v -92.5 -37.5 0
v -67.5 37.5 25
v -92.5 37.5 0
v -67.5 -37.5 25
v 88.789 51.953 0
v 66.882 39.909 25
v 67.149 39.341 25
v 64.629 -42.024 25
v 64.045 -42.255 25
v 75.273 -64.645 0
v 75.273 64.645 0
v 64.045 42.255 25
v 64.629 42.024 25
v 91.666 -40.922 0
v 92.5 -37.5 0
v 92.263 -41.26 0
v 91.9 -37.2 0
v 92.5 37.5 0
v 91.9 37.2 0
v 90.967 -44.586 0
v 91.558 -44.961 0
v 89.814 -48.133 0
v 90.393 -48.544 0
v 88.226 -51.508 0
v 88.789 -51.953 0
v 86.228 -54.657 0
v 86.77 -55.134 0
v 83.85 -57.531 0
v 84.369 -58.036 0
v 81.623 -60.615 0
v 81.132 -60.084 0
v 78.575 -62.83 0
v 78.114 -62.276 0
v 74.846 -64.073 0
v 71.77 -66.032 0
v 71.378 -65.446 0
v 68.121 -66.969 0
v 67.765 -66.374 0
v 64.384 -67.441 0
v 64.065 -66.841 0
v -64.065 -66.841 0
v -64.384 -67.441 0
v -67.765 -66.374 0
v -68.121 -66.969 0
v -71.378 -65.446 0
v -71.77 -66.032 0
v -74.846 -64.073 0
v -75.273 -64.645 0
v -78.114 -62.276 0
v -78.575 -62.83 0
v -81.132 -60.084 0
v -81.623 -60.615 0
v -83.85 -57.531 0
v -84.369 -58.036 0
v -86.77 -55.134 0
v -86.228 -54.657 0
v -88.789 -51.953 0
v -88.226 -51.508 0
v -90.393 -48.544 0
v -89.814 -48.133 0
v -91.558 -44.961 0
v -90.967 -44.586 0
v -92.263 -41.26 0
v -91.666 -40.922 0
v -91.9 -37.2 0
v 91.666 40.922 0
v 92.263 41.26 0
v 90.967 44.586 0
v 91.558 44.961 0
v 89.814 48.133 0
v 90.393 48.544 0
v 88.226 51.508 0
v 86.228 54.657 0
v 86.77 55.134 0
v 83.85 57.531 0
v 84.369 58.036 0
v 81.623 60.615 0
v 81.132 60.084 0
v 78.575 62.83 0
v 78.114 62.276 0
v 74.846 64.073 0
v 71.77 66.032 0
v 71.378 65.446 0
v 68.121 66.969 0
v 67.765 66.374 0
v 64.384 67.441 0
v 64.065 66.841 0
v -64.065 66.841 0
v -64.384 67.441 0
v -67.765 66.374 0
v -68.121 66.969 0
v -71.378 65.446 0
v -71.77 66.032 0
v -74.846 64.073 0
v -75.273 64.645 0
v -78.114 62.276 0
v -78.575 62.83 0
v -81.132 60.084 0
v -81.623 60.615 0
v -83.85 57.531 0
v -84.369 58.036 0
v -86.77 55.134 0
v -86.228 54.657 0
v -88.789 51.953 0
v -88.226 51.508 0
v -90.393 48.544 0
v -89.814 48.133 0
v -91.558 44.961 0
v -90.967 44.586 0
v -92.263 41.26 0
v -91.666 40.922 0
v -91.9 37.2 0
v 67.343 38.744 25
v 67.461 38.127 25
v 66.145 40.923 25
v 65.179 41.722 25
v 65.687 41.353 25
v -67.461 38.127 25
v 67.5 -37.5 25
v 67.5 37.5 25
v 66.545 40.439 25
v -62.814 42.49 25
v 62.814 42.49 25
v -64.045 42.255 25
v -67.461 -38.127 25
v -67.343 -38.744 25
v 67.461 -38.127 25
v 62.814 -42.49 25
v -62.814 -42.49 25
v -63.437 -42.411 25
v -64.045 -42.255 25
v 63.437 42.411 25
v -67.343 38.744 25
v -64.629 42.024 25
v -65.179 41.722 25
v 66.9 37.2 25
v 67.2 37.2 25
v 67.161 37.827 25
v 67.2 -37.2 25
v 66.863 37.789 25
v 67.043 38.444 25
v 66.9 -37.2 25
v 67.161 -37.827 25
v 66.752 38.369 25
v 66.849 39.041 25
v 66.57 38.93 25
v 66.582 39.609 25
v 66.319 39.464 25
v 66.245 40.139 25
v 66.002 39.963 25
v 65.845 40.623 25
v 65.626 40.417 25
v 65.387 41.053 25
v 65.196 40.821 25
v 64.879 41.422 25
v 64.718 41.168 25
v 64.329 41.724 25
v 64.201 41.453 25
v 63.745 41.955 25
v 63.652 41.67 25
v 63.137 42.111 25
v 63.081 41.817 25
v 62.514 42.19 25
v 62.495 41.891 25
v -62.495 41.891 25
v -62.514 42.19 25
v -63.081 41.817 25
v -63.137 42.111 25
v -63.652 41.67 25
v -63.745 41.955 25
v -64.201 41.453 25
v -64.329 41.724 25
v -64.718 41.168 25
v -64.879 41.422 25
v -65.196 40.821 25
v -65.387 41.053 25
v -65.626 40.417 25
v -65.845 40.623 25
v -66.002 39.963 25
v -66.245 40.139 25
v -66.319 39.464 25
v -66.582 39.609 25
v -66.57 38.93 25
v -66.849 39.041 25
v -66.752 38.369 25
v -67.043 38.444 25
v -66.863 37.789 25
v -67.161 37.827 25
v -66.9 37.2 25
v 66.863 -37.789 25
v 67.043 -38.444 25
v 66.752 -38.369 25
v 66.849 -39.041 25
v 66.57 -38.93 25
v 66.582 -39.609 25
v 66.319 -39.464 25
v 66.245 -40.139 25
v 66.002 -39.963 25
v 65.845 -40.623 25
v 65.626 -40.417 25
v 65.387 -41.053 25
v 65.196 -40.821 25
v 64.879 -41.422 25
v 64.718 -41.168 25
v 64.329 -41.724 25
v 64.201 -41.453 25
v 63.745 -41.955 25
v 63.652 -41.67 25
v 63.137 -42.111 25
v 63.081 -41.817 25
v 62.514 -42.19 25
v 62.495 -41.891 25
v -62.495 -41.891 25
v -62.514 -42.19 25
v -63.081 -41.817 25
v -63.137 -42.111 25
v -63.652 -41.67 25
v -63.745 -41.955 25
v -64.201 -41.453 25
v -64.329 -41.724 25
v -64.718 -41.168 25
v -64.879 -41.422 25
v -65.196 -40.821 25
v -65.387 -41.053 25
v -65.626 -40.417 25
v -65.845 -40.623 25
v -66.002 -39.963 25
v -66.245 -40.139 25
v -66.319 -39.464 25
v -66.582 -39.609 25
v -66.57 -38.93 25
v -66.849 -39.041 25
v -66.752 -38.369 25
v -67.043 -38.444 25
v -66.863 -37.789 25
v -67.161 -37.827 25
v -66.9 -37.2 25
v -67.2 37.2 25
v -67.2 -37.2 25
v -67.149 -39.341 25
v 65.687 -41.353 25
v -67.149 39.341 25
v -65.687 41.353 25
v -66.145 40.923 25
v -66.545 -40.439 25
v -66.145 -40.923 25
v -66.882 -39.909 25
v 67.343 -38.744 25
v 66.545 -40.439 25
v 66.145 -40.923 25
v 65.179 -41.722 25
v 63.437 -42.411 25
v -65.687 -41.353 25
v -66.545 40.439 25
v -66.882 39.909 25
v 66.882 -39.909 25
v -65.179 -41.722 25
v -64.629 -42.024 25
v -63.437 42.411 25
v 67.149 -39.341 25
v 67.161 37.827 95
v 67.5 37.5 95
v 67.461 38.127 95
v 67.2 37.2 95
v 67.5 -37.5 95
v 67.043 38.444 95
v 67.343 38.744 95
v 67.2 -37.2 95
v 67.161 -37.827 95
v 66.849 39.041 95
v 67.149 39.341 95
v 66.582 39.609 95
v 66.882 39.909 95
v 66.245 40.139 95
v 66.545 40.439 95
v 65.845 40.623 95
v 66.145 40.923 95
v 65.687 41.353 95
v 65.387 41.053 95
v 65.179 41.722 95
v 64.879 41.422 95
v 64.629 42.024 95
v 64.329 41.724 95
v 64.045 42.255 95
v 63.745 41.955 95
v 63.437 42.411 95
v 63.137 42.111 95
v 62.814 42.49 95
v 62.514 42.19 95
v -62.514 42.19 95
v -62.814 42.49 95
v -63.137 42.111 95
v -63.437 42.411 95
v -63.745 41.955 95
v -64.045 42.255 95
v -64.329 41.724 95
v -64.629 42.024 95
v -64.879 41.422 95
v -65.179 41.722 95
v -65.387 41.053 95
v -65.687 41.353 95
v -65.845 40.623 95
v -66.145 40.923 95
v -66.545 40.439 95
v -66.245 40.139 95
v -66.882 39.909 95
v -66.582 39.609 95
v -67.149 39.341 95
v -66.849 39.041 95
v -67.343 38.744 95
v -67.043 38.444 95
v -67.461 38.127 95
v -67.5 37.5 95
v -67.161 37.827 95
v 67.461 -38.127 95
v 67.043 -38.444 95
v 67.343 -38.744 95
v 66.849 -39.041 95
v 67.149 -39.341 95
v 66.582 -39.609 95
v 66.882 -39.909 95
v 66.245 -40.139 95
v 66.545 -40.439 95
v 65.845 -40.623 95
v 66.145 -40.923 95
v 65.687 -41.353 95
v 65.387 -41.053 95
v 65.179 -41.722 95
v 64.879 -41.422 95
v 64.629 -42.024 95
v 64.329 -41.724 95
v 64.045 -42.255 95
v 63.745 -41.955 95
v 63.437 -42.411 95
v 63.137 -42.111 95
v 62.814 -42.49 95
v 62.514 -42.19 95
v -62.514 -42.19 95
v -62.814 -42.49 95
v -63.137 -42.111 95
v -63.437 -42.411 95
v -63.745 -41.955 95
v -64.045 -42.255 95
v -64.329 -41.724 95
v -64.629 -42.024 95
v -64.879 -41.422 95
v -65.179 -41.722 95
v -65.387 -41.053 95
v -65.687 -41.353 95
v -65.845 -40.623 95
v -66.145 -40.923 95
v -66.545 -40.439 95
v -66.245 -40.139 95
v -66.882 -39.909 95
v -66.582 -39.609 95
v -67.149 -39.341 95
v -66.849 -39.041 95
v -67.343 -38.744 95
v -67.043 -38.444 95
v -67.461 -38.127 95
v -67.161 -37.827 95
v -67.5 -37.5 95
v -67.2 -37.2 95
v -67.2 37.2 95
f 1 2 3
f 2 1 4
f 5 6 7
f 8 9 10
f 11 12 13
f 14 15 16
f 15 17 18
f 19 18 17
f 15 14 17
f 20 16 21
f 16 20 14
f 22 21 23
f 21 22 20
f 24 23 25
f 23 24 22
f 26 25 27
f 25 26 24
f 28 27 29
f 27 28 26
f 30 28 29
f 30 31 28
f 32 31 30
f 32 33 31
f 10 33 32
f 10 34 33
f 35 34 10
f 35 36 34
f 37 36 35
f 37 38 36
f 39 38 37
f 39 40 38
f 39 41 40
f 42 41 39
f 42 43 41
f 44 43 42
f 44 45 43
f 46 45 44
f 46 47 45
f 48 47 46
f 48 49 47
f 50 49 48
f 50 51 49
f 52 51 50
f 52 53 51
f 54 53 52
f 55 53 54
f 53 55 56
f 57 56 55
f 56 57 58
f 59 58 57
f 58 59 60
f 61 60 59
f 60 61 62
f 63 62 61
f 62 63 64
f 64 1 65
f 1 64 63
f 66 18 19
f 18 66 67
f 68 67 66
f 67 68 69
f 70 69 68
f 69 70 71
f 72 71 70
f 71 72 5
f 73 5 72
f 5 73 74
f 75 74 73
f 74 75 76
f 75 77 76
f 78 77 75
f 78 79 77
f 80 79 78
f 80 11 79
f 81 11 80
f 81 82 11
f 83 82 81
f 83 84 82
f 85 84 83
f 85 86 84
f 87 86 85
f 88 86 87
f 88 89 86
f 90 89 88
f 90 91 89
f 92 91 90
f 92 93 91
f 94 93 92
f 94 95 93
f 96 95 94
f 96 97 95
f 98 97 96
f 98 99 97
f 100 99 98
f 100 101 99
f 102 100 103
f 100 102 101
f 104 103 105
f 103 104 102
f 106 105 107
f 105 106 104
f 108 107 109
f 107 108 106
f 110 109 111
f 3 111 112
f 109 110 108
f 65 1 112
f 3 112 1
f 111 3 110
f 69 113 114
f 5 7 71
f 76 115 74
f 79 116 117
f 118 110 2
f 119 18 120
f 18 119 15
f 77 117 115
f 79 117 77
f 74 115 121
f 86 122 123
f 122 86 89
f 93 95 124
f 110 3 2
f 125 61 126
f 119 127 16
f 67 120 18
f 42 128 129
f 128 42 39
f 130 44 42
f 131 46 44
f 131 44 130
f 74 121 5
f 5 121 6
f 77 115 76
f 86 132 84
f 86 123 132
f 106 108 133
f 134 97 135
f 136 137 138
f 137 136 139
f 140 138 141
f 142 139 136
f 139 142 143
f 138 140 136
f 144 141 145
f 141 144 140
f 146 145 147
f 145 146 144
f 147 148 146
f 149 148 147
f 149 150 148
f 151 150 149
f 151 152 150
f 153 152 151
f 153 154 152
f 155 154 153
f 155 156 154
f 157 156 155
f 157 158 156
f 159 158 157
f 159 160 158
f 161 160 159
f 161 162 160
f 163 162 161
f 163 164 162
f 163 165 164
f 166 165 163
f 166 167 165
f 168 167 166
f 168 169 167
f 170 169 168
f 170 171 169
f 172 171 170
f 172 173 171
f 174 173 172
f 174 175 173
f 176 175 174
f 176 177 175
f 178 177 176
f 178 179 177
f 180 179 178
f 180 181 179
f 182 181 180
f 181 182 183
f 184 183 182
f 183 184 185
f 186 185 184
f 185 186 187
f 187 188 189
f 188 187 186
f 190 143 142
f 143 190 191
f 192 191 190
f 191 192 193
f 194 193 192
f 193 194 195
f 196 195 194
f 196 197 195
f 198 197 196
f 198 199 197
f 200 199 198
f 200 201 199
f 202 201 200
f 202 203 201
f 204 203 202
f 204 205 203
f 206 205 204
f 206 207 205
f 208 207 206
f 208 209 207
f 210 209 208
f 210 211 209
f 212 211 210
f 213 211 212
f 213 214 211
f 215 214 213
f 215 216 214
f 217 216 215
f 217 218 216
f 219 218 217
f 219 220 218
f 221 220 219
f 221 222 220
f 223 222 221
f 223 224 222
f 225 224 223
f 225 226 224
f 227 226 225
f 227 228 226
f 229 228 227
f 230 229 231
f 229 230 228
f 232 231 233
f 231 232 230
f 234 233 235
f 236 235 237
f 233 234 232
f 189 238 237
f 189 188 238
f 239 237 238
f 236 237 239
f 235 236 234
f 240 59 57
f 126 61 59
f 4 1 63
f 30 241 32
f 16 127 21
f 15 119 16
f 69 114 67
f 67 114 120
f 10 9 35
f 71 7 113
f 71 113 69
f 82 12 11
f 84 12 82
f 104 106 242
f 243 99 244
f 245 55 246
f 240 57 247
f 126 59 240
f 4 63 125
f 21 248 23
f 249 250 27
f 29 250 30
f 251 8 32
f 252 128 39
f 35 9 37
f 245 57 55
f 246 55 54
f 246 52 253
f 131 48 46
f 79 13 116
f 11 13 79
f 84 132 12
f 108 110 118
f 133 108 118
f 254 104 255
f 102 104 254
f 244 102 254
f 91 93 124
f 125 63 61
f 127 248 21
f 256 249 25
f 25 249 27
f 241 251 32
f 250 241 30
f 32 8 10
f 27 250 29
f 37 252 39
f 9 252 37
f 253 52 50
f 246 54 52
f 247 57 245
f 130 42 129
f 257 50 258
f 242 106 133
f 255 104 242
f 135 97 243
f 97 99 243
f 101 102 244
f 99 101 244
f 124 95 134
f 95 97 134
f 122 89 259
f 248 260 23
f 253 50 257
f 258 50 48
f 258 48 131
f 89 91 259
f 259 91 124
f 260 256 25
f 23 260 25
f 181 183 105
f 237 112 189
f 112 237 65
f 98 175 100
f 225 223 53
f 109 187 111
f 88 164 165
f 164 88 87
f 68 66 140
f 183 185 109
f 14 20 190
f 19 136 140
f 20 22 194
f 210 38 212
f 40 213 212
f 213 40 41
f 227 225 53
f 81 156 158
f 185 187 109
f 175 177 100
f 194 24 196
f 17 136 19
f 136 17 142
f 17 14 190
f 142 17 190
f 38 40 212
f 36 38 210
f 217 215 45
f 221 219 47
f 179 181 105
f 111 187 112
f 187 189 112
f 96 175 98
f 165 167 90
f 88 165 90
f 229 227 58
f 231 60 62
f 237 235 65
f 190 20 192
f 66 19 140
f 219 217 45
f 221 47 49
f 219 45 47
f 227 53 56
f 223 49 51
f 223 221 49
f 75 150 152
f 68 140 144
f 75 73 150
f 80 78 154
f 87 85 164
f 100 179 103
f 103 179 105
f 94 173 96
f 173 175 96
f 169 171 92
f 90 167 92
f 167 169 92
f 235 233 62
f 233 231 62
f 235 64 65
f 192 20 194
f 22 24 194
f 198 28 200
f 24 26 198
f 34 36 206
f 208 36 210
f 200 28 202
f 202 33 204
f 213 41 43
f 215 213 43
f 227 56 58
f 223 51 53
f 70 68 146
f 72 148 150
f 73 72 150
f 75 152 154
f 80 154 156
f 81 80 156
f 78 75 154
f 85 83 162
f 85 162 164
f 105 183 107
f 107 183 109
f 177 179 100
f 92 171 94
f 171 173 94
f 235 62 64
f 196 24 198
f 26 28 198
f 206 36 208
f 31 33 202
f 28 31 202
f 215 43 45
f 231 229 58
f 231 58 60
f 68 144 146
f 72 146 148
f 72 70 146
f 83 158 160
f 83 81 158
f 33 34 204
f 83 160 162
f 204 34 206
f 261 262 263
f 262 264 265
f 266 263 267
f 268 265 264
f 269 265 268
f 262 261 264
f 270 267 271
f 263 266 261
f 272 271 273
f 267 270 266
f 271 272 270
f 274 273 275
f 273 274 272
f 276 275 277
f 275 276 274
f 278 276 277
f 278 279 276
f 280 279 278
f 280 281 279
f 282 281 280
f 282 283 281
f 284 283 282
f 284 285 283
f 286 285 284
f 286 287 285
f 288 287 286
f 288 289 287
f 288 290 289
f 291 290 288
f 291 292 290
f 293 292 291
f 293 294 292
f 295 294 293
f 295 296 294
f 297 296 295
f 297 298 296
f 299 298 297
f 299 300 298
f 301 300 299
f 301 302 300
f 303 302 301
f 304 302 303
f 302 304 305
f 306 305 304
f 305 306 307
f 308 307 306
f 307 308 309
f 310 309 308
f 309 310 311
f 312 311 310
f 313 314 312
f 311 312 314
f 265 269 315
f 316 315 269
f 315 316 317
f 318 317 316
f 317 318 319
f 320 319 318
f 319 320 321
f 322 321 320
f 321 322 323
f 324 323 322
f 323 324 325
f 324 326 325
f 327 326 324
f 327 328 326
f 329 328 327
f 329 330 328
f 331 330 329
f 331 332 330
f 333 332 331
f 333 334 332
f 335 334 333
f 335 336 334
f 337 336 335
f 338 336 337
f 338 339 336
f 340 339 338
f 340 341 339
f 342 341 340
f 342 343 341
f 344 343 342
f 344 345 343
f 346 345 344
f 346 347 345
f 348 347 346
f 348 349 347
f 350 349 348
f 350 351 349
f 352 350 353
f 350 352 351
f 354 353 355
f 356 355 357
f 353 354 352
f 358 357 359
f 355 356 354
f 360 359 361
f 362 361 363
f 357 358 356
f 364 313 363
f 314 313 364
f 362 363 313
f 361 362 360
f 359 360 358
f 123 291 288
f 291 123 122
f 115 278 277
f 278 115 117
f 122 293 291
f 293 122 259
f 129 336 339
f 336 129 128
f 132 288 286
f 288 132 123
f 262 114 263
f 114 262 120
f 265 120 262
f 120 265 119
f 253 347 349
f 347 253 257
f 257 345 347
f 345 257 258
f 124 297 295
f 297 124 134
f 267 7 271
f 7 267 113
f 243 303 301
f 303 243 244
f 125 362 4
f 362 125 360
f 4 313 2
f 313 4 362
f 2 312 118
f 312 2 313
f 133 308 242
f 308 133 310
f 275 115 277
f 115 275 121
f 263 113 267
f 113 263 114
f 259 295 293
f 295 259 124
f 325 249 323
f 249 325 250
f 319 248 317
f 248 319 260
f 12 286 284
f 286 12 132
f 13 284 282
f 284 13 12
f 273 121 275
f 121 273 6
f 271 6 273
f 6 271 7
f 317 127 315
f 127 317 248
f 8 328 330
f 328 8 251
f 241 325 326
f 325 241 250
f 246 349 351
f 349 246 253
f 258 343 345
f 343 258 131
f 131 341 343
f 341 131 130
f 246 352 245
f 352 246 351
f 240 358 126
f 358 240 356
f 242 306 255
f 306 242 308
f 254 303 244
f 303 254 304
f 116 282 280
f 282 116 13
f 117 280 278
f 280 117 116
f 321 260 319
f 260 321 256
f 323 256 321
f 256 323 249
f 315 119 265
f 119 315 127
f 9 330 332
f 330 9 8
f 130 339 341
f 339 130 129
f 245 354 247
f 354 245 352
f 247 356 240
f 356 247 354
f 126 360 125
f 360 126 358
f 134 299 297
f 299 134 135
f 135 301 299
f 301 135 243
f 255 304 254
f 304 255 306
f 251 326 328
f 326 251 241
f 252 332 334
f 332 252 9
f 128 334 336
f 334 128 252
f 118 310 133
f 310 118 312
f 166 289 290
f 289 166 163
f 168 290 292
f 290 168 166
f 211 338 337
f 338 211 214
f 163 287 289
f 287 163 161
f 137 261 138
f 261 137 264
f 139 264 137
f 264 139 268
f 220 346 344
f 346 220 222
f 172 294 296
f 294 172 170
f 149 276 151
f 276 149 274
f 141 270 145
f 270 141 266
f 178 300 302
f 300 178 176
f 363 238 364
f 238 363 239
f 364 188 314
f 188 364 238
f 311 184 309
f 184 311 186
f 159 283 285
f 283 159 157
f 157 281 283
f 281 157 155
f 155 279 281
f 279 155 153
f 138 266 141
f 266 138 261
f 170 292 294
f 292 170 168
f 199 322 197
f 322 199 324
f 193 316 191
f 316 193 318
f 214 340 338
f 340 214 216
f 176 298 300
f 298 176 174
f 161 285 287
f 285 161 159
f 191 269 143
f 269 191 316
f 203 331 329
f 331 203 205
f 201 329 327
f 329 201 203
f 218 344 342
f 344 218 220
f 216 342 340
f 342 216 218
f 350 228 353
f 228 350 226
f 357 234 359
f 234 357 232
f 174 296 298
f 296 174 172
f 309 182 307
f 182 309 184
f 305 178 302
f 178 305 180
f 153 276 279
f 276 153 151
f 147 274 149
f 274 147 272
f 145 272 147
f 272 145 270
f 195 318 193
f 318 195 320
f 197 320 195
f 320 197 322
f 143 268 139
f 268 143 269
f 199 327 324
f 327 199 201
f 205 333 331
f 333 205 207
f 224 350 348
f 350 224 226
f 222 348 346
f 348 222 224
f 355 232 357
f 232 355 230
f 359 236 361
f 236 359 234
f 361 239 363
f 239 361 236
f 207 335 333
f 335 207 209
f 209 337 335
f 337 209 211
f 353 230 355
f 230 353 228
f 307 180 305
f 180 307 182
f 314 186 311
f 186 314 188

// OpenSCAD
$fn = 50;


difference() {
	union() {
		translate(v = [0, 0, 0]) {
			rotate(a = [0, 0, 0]) {
				difference() {
					union() {
						hull() {
							translate(v = [-62.5000000000, 37.5000000000, 0]) {
								cylinder(h = 25, r = 5, r1 = 30.0000000000, r2 = 5);
							}
							translate(v = [62.5000000000, 37.5000000000, 0]) {
								cylinder(h = 25, r = 5, r1 = 30.0000000000, r2 = 5);
							}
							translate(v = [-62.5000000000, -37.5000000000, 0]) {
								cylinder(h = 25, r = 5, r1 = 30.0000000000, r2 = 5);
							}
							translate(v = [62.5000000000, -37.5000000000, 0]) {
								cylinder(h = 25, r = 5, r1 = 30.0000000000, r2 = 5);
							}
						}
					}
					union() {
						hull() {
							translate(v = [-62.2000000000, 37.2000000000, 0]) {
								cylinder(h = 25, r = 5, r1 = 29.7000000000, r2 = 4.7000000000);
							}
							translate(v = [62.2000000000, 37.2000000000, 0]) {
								cylinder(h = 25, r = 5, r1 = 29.7000000000, r2 = 4.7000000000);
							}
							translate(v = [-62.2000000000, -37.2000000000, 0]) {
								cylinder(h = 25, r = 5, r1 = 29.7000000000, r2 = 4.7000000000);
							}
							translate(v = [62.2000000000, -37.2000000000, 0]) {
								cylinder(h = 25, r = 5, r1 = 29.7000000000, r2 = 4.7000000000);
							}
						}
					}
				}
			}
		}
		translate(v = [0, 0, 25]) {
			rotate(a = [0, 0, 0]) {
				difference() {
					union() {
						hull() {
							translate(v = [-62.5000000000, 37.5000000000, 0]) {
								cylinder(h = 70, r = 5);
							}
							translate(v = [62.5000000000, 37.5000000000, 0]) {
								cylinder(h = 70, r = 5);
							}
							translate(v = [-62.5000000000, -37.5000000000, 0]) {
								cylinder(h = 70, r = 5);
							}
							translate(v = [62.5000000000, -37.5000000000, 0]) {
								cylinder(h = 70, r = 5);
							}
						}
					}
					union() {
						hull() {
							translate(v = [-62.2000000000, 37.2000000000, 0]) {
								cylinder(h = 70, r = 5);
							}
							translate(v = [62.2000000000, 37.2000000000, 0]) {
								cylinder(h = 70, r = 5);
							}
							translate(v = [-62.2000000000, -37.2000000000, 0]) {
								cylinder(h = 70, r = 5);
							}
							translate(v = [62.2000000000, -37.2000000000, 0]) {
								cylinder(h = 70, r = 5);
							}
						}
					}
				}
			}
		}
	}
	union();
}
